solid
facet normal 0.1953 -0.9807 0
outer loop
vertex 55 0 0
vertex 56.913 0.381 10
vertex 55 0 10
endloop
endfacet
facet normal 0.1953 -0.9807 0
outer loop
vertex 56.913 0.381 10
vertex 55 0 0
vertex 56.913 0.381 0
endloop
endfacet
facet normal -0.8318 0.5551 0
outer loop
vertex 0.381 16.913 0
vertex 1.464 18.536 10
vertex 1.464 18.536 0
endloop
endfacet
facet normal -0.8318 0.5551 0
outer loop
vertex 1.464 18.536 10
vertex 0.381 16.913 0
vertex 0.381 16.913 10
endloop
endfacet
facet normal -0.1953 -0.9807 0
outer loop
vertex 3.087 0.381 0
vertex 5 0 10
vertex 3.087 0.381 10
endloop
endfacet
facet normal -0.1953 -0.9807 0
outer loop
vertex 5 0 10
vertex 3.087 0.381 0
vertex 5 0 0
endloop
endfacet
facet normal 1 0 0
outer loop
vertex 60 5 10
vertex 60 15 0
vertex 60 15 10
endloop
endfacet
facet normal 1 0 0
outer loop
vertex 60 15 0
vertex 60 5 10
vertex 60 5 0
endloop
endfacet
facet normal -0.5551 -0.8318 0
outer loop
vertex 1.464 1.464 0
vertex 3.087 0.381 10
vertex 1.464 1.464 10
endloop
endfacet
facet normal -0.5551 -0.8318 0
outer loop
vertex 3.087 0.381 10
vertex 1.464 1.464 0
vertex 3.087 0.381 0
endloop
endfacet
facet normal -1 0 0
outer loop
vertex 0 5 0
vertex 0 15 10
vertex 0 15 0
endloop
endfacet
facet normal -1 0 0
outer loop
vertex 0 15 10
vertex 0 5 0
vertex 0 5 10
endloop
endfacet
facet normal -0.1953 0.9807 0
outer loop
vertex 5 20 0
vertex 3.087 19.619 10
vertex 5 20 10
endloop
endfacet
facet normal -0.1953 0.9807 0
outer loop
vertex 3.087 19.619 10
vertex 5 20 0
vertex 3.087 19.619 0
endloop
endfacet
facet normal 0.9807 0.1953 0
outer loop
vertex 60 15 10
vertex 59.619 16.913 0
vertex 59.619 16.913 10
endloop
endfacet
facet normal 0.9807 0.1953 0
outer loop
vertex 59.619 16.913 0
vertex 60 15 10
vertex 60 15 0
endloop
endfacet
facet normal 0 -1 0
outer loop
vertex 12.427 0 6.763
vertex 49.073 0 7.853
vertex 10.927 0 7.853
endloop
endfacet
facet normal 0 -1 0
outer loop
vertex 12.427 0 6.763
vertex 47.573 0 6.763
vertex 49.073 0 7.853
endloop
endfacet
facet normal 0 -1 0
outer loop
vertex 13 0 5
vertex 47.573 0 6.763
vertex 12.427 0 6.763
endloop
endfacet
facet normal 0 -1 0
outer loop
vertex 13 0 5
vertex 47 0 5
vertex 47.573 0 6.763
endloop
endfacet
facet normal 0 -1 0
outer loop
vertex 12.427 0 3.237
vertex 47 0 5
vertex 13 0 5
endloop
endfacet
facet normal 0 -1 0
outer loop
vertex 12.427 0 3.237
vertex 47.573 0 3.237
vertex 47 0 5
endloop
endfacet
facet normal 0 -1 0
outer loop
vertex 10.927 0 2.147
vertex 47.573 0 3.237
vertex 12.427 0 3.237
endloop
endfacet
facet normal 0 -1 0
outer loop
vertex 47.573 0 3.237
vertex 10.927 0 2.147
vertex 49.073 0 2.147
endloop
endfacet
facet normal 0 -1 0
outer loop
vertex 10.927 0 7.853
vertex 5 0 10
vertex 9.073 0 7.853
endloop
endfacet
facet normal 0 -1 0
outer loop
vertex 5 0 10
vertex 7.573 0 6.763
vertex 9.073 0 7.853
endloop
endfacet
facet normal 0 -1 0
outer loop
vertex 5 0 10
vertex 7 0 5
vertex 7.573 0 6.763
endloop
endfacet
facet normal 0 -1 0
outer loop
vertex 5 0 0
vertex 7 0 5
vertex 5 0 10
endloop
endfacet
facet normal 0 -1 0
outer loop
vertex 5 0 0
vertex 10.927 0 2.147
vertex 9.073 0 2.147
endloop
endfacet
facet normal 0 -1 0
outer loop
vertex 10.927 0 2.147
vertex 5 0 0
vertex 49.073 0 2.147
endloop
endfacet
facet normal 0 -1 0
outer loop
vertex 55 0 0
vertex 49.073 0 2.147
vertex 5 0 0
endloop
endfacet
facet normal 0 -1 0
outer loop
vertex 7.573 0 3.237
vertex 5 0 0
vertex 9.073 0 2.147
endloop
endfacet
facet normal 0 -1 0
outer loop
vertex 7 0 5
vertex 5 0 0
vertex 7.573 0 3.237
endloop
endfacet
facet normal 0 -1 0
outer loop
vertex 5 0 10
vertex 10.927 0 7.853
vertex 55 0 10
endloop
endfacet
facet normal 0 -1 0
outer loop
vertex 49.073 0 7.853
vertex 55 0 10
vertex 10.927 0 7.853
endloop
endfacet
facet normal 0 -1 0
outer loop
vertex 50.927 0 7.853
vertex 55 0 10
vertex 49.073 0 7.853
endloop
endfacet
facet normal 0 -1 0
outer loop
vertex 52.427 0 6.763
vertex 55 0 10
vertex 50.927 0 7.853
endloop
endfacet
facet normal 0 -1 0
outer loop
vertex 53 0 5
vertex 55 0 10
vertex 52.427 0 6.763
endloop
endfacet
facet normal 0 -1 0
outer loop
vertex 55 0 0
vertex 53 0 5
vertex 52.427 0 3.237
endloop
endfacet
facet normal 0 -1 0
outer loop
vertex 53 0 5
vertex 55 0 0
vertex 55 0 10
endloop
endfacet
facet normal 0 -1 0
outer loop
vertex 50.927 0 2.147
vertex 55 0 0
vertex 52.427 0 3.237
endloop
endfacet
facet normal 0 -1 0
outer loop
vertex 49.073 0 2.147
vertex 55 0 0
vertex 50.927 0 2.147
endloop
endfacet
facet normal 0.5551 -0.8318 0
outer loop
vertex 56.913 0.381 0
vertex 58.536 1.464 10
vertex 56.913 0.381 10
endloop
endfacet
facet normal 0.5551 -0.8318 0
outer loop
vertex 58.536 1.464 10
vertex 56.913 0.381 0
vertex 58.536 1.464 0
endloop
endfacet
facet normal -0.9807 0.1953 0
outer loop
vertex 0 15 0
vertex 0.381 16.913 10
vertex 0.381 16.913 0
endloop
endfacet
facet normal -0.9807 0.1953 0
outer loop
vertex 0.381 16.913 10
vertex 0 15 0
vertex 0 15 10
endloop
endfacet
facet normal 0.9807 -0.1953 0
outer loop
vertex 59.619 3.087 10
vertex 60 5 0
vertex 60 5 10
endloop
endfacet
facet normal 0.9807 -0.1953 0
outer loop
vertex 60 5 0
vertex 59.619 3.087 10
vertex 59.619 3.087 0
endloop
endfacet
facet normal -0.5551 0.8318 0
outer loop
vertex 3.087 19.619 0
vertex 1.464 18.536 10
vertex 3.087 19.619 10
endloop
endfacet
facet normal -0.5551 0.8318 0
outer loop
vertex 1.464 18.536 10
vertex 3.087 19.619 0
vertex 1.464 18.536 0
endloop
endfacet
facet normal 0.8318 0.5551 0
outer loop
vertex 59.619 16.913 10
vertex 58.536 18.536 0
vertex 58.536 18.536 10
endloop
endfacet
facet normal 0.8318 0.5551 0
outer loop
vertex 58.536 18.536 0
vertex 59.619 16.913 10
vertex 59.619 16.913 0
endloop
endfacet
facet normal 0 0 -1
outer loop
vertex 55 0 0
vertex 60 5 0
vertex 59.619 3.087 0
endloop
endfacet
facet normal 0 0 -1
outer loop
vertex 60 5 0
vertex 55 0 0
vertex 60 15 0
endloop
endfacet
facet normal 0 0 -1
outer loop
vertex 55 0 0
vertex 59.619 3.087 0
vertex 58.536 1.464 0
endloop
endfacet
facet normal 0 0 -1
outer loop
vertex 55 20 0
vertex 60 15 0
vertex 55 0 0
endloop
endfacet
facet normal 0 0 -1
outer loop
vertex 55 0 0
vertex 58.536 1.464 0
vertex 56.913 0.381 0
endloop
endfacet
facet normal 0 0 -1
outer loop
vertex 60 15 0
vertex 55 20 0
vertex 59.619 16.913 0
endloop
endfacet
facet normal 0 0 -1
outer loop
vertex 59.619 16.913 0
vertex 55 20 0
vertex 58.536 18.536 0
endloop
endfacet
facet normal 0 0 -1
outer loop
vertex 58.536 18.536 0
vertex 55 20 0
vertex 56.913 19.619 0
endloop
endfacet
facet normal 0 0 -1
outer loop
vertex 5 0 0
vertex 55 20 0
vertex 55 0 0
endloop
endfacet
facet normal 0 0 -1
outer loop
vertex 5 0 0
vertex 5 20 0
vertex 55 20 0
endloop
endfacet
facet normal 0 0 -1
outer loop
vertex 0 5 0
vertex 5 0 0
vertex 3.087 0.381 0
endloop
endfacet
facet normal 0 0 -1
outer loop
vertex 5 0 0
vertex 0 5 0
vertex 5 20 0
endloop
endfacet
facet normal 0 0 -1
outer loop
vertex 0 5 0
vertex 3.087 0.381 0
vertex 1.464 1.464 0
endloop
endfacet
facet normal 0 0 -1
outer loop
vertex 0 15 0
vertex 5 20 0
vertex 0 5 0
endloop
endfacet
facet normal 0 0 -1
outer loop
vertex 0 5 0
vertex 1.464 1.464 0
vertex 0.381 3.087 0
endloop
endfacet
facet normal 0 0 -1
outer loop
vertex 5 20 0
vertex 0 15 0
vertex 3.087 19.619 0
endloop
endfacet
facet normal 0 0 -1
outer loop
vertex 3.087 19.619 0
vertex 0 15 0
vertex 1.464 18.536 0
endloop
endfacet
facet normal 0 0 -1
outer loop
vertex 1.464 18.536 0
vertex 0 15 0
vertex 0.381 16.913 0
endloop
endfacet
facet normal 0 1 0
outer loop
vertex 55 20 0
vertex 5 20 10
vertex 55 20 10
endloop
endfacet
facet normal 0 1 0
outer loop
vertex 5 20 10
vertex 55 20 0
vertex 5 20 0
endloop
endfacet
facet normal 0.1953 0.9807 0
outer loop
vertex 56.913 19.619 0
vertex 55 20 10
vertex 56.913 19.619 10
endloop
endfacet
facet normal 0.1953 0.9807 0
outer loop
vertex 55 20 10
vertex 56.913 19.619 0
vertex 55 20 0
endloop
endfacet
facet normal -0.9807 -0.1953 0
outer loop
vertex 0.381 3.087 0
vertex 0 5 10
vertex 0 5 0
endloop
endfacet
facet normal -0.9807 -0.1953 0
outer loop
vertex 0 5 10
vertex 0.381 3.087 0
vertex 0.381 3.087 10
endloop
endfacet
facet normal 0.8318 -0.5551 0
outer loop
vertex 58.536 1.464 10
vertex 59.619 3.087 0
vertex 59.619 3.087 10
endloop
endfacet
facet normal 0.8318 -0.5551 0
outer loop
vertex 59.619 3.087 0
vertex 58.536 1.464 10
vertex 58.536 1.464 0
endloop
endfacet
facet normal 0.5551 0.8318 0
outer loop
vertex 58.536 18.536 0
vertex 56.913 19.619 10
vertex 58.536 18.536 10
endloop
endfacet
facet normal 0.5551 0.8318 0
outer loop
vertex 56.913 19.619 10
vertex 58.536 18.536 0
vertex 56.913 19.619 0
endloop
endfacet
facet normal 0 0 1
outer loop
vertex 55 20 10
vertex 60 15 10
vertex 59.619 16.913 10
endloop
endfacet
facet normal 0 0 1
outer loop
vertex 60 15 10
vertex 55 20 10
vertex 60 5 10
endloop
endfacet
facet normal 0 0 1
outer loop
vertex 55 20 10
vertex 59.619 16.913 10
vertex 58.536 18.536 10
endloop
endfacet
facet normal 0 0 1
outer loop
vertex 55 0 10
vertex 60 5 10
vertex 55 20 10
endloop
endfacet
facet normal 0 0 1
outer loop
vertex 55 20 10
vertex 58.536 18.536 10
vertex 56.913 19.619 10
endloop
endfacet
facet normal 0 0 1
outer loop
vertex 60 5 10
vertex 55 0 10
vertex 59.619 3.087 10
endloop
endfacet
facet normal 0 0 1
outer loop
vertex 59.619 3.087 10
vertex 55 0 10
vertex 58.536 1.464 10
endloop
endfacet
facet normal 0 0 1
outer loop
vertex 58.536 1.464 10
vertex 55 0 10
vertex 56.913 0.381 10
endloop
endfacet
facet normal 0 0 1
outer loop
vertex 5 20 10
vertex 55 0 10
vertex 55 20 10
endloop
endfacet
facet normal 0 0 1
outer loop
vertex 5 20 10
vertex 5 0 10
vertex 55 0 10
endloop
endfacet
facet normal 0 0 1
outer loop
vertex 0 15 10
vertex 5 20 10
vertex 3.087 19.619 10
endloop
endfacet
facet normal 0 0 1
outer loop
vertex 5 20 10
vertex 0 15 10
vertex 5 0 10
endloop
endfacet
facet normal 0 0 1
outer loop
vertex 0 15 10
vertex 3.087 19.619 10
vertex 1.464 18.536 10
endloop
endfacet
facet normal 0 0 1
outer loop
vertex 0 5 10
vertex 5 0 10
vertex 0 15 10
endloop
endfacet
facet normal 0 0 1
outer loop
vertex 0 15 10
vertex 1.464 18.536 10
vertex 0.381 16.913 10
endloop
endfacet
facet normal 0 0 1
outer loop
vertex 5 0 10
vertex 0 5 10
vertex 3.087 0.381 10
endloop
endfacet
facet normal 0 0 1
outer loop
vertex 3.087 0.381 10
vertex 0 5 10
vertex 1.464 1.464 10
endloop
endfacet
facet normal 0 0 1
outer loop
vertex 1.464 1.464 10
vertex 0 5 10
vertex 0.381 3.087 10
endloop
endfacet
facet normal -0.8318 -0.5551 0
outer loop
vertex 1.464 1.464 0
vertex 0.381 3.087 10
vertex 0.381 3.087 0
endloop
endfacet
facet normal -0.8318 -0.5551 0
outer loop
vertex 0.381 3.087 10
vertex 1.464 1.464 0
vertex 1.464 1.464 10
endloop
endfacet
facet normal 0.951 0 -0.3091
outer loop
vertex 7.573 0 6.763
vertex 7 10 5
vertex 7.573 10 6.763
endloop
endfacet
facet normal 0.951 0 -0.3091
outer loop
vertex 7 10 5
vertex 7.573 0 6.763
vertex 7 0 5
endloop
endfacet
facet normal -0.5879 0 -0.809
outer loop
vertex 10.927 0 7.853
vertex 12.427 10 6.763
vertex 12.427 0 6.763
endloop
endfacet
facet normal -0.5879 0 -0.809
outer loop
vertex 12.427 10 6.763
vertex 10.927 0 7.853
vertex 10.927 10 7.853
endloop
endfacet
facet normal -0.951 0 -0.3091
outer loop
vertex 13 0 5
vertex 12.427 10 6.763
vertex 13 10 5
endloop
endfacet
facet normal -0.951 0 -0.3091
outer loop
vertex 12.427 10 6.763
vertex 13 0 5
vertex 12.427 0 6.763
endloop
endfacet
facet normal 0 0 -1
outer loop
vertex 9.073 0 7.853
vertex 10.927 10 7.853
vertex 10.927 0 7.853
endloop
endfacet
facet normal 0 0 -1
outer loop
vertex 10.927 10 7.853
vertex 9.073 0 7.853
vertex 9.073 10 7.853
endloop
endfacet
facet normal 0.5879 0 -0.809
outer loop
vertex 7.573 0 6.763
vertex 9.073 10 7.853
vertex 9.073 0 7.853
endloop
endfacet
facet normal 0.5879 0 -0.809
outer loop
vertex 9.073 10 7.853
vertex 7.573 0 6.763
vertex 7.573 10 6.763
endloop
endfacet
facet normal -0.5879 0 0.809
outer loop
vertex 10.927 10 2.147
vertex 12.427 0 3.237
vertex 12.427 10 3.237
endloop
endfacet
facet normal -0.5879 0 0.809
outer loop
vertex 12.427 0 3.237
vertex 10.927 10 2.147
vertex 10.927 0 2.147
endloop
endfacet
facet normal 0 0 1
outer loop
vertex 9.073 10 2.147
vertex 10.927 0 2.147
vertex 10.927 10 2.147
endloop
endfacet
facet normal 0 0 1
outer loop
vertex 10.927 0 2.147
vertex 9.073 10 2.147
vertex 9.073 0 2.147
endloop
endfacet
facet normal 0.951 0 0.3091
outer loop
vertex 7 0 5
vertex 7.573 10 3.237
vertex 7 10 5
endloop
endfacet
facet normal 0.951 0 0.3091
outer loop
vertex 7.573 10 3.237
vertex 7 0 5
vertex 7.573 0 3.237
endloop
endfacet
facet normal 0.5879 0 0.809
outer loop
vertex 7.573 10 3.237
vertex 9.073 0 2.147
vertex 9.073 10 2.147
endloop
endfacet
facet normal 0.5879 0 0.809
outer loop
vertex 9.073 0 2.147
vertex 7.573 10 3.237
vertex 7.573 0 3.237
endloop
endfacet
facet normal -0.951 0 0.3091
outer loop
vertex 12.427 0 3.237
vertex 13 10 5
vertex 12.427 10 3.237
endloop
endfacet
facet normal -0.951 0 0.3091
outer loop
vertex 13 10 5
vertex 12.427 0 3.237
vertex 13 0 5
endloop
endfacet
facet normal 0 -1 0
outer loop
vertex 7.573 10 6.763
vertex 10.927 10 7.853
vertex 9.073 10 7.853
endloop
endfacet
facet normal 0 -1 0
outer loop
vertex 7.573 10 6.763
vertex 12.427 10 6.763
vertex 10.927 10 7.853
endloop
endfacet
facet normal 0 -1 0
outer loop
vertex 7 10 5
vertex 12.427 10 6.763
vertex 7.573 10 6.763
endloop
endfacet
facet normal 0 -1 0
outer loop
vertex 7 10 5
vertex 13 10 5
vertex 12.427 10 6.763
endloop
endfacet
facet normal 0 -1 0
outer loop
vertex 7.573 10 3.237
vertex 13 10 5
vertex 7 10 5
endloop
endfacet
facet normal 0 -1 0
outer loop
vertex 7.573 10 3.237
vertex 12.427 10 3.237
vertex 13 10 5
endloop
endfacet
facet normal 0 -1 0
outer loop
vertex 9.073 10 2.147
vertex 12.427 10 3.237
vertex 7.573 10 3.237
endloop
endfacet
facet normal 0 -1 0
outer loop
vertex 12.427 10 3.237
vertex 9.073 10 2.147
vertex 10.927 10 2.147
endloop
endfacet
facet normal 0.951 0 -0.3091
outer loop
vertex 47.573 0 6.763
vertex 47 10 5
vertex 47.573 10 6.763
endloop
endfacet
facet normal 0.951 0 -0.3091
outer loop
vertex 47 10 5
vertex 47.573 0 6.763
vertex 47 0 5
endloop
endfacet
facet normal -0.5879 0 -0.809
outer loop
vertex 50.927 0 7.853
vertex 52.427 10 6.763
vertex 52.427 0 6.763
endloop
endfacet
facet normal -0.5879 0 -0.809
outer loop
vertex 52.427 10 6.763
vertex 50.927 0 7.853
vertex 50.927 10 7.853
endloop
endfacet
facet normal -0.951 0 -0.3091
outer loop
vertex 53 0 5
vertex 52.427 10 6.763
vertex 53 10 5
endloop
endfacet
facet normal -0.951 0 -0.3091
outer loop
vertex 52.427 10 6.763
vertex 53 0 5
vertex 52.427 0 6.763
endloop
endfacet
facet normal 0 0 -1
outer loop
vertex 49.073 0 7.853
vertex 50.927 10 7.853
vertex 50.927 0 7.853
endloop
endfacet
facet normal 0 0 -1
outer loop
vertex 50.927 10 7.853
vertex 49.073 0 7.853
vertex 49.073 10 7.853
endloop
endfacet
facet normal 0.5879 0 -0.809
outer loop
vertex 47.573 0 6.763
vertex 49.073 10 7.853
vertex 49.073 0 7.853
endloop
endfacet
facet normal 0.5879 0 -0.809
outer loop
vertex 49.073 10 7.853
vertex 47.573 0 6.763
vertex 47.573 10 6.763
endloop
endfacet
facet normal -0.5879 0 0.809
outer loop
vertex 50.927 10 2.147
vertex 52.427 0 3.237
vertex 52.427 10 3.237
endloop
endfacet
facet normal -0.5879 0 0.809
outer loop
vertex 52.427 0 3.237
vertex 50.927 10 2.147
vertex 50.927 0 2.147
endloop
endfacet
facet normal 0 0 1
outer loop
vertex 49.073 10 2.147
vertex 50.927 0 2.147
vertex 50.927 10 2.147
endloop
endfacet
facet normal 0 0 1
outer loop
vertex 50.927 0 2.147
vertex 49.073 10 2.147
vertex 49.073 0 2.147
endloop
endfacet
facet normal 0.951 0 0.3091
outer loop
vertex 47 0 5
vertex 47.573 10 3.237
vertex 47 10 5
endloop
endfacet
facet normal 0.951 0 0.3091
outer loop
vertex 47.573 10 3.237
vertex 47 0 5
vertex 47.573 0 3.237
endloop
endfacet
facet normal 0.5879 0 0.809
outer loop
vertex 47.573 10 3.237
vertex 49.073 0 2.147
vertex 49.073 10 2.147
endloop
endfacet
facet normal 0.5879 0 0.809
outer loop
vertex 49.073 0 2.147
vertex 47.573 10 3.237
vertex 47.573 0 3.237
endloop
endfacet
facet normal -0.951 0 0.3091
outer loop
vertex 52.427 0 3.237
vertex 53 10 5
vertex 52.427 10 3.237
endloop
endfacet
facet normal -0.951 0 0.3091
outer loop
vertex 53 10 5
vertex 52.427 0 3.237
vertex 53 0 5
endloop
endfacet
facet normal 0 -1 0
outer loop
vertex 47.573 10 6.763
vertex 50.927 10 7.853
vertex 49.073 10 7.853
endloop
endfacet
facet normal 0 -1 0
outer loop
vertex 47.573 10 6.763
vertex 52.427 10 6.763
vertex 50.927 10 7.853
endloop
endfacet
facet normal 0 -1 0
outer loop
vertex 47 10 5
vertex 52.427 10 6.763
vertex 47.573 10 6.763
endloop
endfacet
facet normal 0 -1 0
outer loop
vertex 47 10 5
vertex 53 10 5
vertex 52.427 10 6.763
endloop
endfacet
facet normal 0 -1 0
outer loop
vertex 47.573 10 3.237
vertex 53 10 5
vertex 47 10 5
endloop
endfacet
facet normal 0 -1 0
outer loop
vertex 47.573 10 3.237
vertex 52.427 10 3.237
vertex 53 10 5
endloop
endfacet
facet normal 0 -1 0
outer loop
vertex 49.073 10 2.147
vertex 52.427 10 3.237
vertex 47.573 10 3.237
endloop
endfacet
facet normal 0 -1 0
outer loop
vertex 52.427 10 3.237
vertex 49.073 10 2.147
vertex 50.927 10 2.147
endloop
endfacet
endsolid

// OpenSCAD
// Parameters for the rectangular bar
length = 60; // Length of the bar
width = 20;  // Width of the bar
height = 10; // Height of the bar
corner_radius = 5; // Radius for rounded edges
hole_radius = 3; // Radius of the through-holes
hole_offset = 10; // Distance from the ends to the center of the holes

// Main module
module rectangular_bar() {
    // Create the rounded rectangular bar
    difference() {
        // Rounded rectangular bar
        hull() {
            translate([corner_radius, corner_radius, 0])
                cylinder(r=corner_radius, h=height);
            translate([length - corner_radius, corner_radius, 0])
                cylinder(r=corner_radius, h=height);
            translate([corner_radius, width - corner_radius, 0])
                cylinder(r=corner_radius, h=height);
            translate([length - corner_radius, width - corner_radius, 0])
                cylinder(r=corner_radius, h=height);
        }
        
        // Through-holes
        translate([hole_offset, width / 2, height / 2])
            rotate([90, 0, 0])
            cylinder(r=hole_radius, h=length);
        translate([length - hole_offset, width / 2, height / 2])
            rotate([90, 0, 0])
            cylinder(r=hole_radius, h=length);
    }
}

// Render the rectangular bar
rectangular_bar();
